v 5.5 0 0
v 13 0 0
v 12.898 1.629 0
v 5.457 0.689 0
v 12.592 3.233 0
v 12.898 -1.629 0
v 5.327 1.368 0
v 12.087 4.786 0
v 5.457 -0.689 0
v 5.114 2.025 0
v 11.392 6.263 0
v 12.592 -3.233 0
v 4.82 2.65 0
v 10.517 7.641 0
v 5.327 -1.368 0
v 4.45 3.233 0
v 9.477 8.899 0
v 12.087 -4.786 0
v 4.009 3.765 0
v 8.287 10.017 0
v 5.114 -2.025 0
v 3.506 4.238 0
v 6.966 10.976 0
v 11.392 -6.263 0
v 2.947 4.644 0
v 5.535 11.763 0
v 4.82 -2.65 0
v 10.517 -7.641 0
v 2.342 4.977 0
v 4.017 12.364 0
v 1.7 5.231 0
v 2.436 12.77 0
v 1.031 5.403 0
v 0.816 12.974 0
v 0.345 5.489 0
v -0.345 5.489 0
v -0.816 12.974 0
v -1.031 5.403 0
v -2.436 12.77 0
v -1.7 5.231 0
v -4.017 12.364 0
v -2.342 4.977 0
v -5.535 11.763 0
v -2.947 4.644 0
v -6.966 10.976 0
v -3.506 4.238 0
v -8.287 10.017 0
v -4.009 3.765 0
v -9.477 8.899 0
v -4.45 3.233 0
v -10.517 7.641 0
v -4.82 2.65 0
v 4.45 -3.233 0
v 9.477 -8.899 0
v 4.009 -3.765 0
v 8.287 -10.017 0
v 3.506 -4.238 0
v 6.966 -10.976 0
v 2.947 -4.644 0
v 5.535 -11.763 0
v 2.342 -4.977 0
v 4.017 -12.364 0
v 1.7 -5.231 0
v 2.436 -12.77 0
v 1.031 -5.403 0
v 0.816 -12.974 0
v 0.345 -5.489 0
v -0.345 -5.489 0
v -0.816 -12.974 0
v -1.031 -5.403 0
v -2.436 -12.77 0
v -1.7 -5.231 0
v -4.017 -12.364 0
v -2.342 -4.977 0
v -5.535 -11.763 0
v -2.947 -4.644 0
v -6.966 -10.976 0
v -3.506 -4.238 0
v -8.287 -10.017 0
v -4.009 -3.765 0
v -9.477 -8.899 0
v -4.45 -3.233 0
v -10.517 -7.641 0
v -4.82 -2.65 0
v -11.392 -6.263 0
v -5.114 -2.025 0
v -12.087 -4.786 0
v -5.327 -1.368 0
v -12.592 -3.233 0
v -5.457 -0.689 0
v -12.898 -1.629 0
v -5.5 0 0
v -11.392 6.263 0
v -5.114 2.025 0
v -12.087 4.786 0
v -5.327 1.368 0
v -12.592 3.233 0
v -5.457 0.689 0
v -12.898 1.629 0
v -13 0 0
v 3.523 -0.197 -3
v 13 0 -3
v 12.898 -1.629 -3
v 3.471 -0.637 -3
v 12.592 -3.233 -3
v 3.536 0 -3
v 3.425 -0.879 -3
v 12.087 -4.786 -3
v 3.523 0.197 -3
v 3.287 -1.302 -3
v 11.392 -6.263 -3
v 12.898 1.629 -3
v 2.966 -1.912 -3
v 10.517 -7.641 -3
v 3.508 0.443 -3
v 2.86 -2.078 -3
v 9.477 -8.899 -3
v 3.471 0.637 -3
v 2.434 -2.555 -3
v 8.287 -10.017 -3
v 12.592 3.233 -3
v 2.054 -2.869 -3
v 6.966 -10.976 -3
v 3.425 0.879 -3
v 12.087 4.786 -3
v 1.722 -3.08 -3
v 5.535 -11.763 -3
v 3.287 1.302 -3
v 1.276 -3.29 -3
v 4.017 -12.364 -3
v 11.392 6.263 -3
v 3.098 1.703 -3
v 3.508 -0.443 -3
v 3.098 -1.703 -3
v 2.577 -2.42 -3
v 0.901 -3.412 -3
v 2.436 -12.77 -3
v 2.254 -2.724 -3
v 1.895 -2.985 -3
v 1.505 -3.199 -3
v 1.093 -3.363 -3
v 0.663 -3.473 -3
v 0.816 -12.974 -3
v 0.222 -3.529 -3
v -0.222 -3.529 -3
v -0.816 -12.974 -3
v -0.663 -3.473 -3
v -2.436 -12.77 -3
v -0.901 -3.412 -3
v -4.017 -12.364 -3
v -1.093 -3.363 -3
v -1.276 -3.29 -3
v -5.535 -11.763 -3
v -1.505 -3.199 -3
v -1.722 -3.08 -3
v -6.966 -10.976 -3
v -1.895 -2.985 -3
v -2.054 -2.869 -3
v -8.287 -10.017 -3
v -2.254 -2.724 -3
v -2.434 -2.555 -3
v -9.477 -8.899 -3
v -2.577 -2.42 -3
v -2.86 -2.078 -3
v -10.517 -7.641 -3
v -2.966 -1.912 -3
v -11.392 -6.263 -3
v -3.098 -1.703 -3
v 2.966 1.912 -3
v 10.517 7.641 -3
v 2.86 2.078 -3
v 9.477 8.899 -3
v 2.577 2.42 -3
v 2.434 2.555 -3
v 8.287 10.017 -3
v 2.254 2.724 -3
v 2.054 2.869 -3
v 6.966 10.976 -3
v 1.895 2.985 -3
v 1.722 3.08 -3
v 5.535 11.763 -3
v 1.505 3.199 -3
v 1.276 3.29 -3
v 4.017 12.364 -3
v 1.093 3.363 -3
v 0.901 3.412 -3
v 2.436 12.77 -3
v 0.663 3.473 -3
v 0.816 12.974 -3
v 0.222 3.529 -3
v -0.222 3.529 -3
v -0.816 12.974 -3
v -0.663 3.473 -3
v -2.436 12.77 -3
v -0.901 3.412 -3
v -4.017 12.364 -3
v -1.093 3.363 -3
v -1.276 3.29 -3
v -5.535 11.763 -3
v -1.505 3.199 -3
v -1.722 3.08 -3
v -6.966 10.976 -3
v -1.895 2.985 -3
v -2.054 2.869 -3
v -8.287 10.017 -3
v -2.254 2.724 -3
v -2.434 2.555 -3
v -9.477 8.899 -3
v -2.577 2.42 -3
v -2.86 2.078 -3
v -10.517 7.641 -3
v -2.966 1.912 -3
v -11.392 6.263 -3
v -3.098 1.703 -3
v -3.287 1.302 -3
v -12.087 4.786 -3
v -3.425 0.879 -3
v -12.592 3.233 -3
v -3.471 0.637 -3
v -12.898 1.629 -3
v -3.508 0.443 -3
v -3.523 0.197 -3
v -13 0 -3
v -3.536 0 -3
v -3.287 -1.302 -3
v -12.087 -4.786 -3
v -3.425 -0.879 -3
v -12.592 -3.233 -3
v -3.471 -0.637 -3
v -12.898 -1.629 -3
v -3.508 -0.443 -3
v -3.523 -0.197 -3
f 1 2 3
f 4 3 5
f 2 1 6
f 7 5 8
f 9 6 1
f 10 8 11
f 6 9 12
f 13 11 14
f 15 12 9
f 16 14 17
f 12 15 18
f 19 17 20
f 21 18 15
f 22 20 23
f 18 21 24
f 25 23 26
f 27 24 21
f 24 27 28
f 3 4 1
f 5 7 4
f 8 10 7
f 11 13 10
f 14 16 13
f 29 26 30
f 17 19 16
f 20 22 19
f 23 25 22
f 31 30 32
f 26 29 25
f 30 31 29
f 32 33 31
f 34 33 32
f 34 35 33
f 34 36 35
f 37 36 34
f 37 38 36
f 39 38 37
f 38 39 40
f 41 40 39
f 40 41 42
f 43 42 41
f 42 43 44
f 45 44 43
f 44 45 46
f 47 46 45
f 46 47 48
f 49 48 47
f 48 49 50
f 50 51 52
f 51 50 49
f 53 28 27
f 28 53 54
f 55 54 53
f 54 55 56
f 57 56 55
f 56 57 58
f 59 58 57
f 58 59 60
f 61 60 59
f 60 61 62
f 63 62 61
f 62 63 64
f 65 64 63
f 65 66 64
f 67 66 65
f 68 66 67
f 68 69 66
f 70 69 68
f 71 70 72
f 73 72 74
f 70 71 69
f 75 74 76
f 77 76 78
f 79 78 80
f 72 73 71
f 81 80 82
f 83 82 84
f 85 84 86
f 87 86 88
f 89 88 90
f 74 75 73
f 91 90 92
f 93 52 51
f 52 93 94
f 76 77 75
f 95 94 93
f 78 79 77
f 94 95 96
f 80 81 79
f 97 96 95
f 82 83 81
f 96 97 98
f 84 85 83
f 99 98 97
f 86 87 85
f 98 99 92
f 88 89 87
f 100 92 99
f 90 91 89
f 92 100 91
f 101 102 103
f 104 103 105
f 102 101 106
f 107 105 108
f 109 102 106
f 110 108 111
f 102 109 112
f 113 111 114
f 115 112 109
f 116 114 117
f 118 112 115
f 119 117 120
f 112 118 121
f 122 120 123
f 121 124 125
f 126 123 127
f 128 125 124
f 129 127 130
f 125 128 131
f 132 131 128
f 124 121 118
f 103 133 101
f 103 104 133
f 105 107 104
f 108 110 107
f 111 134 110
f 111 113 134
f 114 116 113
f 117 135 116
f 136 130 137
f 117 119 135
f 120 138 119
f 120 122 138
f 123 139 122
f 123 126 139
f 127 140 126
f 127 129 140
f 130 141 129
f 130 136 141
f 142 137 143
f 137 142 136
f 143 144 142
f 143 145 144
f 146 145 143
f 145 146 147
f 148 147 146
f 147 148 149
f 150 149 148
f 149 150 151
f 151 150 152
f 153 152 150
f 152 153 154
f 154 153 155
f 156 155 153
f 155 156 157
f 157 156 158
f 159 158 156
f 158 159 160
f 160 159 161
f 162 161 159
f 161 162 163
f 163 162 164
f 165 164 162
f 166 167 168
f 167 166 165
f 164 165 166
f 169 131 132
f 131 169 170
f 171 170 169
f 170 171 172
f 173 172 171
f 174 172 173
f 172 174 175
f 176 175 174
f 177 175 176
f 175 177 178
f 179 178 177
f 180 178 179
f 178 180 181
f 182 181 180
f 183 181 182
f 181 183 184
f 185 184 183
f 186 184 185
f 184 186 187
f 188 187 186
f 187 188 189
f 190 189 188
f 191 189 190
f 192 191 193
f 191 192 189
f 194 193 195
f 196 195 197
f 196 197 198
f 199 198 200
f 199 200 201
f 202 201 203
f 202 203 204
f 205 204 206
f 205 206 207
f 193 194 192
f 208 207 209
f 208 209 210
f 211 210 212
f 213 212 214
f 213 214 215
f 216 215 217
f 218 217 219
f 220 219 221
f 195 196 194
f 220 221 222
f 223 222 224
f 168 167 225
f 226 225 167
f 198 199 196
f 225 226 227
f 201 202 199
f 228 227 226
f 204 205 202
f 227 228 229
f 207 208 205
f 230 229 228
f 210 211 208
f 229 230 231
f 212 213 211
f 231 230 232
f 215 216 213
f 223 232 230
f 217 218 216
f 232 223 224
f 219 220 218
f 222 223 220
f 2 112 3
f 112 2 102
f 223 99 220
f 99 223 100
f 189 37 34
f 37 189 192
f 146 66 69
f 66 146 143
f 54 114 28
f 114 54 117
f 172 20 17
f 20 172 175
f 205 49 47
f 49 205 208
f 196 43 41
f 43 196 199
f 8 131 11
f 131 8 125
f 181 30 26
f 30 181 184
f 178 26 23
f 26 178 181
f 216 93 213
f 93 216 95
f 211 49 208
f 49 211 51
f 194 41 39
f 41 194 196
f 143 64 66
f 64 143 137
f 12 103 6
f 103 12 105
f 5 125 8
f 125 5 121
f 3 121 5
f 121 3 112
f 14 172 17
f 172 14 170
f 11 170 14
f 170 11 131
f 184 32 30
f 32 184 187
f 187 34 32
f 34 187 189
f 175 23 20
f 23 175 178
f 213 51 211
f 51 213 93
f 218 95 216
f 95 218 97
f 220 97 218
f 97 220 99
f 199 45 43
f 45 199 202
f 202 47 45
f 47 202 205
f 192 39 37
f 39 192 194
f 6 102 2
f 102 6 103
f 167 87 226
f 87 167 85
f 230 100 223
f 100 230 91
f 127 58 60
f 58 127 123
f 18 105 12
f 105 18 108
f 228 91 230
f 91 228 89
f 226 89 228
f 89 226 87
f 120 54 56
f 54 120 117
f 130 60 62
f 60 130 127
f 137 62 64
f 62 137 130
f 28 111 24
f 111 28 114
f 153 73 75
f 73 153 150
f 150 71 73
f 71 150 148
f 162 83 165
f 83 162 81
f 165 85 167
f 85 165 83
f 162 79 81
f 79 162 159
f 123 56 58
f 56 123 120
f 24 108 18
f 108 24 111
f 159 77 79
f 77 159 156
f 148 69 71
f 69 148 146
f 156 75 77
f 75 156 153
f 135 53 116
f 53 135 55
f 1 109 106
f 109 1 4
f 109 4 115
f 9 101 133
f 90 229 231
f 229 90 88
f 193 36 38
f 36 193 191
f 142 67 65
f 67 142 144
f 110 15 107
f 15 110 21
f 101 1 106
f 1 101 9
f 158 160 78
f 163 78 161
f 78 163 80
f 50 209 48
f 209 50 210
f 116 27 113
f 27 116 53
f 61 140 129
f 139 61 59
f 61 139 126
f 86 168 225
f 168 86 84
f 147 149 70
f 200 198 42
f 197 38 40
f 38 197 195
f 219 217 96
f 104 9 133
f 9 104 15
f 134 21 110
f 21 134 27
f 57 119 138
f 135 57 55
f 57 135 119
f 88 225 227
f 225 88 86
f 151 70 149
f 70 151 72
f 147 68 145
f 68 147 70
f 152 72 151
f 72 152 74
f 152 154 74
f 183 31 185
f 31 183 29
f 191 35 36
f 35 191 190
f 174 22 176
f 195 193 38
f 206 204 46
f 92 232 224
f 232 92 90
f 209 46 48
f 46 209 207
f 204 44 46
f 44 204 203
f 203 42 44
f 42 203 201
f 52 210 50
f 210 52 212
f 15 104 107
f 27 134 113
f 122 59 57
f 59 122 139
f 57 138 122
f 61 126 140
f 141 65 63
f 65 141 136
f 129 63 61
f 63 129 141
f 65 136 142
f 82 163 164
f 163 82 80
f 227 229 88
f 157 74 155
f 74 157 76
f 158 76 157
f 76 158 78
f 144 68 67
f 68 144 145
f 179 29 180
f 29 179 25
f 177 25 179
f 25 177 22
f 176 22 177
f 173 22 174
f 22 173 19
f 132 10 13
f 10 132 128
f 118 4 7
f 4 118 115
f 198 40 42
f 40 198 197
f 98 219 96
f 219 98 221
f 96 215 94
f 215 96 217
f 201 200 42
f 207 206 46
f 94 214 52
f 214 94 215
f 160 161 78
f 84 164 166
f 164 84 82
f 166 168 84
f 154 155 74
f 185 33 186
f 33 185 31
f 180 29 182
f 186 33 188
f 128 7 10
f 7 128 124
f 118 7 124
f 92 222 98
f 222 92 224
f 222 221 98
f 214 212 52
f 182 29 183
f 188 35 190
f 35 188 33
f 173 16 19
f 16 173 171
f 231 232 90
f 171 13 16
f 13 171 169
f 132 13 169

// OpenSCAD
$fn = 50;


difference() {
	union() {
		translate(v = [0, 0, -3.0000000000]) {
			cylinder(h = 3, r = 10.0000000000);
		}
		translate(v = [0, 0, -3.0000000000]) {
			cylinder(h = 3, r = 13.0000000000);
		}
	}
	union() {
		translate(v = [0, 0, 0]) {
			rotate(a = [0, 0, 0]) {
				difference() {
					union() {
						#translate(v = [0, 0, -3.0000000000]) {
							cylinder(h = 3, r = 2.2500000000);
						}
						#translate(v = [0, 0, -4.2000000000]) {
							cylinder(h = 4.2000000000, r1 = 2.7500000000, r2 = 5.5000000000);
						}
						#translate(v = [0, 0, -3.0000000000]) {
							cylinder(h = 3, r = 2.7500000000);
						}
						#translate(v = [0, 0, -3.0000000000]) {
							cylinder(h = 3, r = 2.2500000000);
						}
					}
					union();
				}
			}
		}
	}
}
